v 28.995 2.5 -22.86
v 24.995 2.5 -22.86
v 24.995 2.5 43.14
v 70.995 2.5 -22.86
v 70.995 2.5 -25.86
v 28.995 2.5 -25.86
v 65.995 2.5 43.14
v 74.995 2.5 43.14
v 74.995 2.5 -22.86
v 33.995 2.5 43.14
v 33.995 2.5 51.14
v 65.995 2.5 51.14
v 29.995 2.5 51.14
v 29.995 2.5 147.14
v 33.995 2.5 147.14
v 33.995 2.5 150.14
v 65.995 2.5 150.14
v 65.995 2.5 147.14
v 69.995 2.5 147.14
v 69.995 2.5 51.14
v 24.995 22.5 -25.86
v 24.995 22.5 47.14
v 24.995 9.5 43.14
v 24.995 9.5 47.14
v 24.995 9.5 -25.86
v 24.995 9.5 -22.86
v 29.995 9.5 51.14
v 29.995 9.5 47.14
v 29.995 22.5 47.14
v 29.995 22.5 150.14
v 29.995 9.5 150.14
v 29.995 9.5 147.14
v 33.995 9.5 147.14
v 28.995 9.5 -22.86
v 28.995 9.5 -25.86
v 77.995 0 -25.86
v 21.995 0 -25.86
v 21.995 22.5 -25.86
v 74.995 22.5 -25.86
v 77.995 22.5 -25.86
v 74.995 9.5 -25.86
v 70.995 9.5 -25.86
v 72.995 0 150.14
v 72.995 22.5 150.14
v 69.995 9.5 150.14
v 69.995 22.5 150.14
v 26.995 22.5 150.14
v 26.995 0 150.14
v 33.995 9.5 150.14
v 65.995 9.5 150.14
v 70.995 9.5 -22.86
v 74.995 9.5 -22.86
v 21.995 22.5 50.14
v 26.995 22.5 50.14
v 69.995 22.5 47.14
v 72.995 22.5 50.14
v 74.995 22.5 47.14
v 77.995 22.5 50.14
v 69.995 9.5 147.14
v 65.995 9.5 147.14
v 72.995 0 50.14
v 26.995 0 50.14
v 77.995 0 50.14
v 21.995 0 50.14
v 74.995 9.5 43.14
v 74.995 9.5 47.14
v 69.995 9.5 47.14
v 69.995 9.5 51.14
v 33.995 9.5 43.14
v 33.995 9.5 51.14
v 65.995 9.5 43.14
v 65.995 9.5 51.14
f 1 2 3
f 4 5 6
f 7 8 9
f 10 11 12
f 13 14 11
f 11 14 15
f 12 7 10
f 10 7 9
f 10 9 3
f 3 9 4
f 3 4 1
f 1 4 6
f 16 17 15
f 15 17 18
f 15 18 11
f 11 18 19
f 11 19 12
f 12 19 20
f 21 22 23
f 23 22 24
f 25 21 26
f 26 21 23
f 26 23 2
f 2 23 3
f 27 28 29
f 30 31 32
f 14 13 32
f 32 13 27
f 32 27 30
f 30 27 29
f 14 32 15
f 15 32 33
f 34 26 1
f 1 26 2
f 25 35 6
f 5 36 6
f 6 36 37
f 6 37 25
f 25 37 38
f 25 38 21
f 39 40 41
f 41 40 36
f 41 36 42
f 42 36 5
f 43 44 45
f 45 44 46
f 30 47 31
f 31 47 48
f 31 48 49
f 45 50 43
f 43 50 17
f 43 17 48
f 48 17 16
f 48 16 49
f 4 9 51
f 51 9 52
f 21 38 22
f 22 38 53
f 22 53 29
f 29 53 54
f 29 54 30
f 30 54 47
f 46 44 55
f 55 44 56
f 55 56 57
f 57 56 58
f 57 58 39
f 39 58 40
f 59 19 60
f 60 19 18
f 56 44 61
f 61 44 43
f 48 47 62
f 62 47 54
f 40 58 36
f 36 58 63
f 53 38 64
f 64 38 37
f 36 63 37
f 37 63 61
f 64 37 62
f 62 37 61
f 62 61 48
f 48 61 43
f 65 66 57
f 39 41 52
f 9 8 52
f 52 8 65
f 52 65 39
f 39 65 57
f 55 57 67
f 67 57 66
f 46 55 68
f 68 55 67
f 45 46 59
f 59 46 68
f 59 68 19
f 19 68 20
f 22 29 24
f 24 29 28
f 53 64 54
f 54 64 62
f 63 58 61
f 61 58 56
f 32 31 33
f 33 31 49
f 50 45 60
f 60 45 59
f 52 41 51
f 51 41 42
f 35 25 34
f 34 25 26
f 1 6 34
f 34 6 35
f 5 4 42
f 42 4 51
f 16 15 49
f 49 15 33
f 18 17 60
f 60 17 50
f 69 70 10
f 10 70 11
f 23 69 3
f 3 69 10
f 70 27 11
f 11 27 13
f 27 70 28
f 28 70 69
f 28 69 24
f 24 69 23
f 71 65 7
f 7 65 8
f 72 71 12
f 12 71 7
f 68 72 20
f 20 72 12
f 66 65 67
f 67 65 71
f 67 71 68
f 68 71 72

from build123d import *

# Parameters (mm, degrees)
SKETCH1_W           = 46
SKETCH1_H           = 103
SKETCH1_W_2         = 56
SKETCH1_H_2         = 73
BOSS_EXTRUDE2_DEPTH = 2.5
BOSS_EXTRUDE3_DEPTH = 20
SKETCH4_W           = 3
SKETCH4_H           = 22.5
BOSS_EXTRUDE4_DEPTH = 5
SKETCH7_W           = 3
SKETCH7_H           = 22.5
BOSS_EXTRUDE5_DEPTH = 5
SKETCH8_W           = 4
SKETCH8_H           = 3
CUT_EXTRUDE1_DEPTH  = 13
SKETCH9_W           = 42
SKETCH9_H           = 3
CUT_EXTRUDE2_DEPTH  = 20
SKETCH10_W          = 32
SKETCH10_H          = 3
CUT_EXTRUDE3_DEPTH  = 20
SKETCH11_W          = 4
SKETCH11_H          = 4
BOSS_EXTRUDE6_DEPTH = 7


with BuildPart() as part:
    # Sketch1 → Boss-Extrude2 (new body)
    with BuildSketch(Plane(origin=(0, 0, 0), x_dir=(1, 0, 0), z_dir=(0, 1, 0))):
        with Locations((49.995495495, -98.63963964)):
            Rectangle(SKETCH1_W, SKETCH1_H)
        with Locations((49.995495495, -10.63963964)):
            Rectangle(SKETCH1_W_2, SKETCH1_H_2)
    extrude(amount=BOSS_EXTRUDE2_DEPTH)

    # Sketch3 → Boss-Extrude3 (add)
    with BuildSketch(Plane(origin=(0, 2.5, 0), x_dir=(1, 0, 0), z_dir=(0, 1, 0))):
        Polygon((24.995495495, -47.13963964), (24.995495495, 22.86036036), (74.995495495, 22.86036036), (74.995495495, -47.13963964), (77.995495495, -47.13963964), (77.995495495, 25.86036036), (21.995495495, 25.86036036), (21.995495495, -47.13963964), align=None)
        Polygon((29.995495495, -47.13963964), (26.995495495, -47.13963964), (26.995495495, -150.13963964), (72.995495495, -150.13963964), (72.995495495, -47.13963964), (69.995495495, -47.13963964), (69.995495495, -147.13963964), (29.995495495, -147.13963964), align=None)
    extrude(amount=BOSS_EXTRUDE3_DEPTH)

    # Sketch4 → Boss-Extrude4 (add)
    with BuildSketch(Plane.ZY.offset(-26.995495495)):
        with Locations((48.63963964, 11.25)):
            Rectangle(SKETCH4_W, SKETCH4_H)
    extrude(amount=BOSS_EXTRUDE4_DEPTH)

    # Sketch7 → Boss-Extrude5 (add)
    with BuildSketch(Plane(origin=(72.995495495, 0, 0), x_dir=(0, 0, -1), z_dir=(1, 0, 0))):
        with Locations((-48.63963964, 11.25)):
            Rectangle(SKETCH7_W, SKETCH7_H)
    extrude(amount=BOSS_EXTRUDE5_DEPTH)

    # Sketch8 → Cut-Extrude1 (cut)
    with BuildSketch(Plane(origin=(0, 22.5, 0), x_dir=(1, 0, 0), z_dir=(0, 1, 0))):
        with Locations((26.995495495, 24.36036036)):
            Rectangle(SKETCH8_W, SKETCH8_H)
        with Locations((72.995495495, 24.36036036)):
            Rectangle(SKETCH8_W, SKETCH8_H)
        with Locations((67.995495495, -148.63963964)):
            Rectangle(SKETCH8_W, SKETCH8_H)
        with Locations((31.995495495, -148.63963964)):
            Rectangle(SKETCH8_W, SKETCH8_H)
    extrude(amount=-CUT_EXTRUDE1_DEPTH, mode=Mode.SUBTRACT)

    # Sketch9 → Cut-Extrude2 (cut)
    with BuildSketch(Plane(origin=(0, 22.5, 0), x_dir=(1, 0, 0), z_dir=(0, 1, 0))):
        with Locations((49.995495495, 24.36036036)):
            Rectangle(SKETCH9_W, SKETCH9_H)
    extrude(amount=-CUT_EXTRUDE2_DEPTH, mode=Mode.SUBTRACT)

    # Sketch10 → Cut-Extrude3 (cut)
    with BuildSketch(Plane(origin=(0, 22.5, 0), x_dir=(1, 0, 0), z_dir=(0, 1, 0))):
        with Locations((49.995495495, -148.63963964)):
            Rectangle(SKETCH10_W, SKETCH10_H)
    extrude(amount=-CUT_EXTRUDE3_DEPTH, mode=Mode.SUBTRACT)

    # Sketch11 → Boss-Extrude6 (add)
    with BuildSketch(Plane(origin=(0, 2.5, 0), x_dir=(1, 0, 0), z_dir=(0, 1, 0))):
        with Locations((31.995495495, -49.13963964)):
            Rectangle(SKETCH11_W, SKETCH11_H)
        Polygon((24.995495495, -47.13963964), (29.995495495, -47.13963964), (33.995495495, -47.13963964), (33.995495495, -43.13963964), (24.995495495, -43.13963964), align=None)
        Polygon((65.995495495, -47.13963964), (69.995495495, -47.13963964), (74.995495495, -47.13963964), (74.995495495, -43.13963964), (65.995495495, -43.13963964), align=None)
        with Locations((67.995495495, -49.13963964)):
            Rectangle(SKETCH11_W, SKETCH11_H)
    extrude(amount=BOSS_EXTRUDE6_DEPTH)


solid = part.part
